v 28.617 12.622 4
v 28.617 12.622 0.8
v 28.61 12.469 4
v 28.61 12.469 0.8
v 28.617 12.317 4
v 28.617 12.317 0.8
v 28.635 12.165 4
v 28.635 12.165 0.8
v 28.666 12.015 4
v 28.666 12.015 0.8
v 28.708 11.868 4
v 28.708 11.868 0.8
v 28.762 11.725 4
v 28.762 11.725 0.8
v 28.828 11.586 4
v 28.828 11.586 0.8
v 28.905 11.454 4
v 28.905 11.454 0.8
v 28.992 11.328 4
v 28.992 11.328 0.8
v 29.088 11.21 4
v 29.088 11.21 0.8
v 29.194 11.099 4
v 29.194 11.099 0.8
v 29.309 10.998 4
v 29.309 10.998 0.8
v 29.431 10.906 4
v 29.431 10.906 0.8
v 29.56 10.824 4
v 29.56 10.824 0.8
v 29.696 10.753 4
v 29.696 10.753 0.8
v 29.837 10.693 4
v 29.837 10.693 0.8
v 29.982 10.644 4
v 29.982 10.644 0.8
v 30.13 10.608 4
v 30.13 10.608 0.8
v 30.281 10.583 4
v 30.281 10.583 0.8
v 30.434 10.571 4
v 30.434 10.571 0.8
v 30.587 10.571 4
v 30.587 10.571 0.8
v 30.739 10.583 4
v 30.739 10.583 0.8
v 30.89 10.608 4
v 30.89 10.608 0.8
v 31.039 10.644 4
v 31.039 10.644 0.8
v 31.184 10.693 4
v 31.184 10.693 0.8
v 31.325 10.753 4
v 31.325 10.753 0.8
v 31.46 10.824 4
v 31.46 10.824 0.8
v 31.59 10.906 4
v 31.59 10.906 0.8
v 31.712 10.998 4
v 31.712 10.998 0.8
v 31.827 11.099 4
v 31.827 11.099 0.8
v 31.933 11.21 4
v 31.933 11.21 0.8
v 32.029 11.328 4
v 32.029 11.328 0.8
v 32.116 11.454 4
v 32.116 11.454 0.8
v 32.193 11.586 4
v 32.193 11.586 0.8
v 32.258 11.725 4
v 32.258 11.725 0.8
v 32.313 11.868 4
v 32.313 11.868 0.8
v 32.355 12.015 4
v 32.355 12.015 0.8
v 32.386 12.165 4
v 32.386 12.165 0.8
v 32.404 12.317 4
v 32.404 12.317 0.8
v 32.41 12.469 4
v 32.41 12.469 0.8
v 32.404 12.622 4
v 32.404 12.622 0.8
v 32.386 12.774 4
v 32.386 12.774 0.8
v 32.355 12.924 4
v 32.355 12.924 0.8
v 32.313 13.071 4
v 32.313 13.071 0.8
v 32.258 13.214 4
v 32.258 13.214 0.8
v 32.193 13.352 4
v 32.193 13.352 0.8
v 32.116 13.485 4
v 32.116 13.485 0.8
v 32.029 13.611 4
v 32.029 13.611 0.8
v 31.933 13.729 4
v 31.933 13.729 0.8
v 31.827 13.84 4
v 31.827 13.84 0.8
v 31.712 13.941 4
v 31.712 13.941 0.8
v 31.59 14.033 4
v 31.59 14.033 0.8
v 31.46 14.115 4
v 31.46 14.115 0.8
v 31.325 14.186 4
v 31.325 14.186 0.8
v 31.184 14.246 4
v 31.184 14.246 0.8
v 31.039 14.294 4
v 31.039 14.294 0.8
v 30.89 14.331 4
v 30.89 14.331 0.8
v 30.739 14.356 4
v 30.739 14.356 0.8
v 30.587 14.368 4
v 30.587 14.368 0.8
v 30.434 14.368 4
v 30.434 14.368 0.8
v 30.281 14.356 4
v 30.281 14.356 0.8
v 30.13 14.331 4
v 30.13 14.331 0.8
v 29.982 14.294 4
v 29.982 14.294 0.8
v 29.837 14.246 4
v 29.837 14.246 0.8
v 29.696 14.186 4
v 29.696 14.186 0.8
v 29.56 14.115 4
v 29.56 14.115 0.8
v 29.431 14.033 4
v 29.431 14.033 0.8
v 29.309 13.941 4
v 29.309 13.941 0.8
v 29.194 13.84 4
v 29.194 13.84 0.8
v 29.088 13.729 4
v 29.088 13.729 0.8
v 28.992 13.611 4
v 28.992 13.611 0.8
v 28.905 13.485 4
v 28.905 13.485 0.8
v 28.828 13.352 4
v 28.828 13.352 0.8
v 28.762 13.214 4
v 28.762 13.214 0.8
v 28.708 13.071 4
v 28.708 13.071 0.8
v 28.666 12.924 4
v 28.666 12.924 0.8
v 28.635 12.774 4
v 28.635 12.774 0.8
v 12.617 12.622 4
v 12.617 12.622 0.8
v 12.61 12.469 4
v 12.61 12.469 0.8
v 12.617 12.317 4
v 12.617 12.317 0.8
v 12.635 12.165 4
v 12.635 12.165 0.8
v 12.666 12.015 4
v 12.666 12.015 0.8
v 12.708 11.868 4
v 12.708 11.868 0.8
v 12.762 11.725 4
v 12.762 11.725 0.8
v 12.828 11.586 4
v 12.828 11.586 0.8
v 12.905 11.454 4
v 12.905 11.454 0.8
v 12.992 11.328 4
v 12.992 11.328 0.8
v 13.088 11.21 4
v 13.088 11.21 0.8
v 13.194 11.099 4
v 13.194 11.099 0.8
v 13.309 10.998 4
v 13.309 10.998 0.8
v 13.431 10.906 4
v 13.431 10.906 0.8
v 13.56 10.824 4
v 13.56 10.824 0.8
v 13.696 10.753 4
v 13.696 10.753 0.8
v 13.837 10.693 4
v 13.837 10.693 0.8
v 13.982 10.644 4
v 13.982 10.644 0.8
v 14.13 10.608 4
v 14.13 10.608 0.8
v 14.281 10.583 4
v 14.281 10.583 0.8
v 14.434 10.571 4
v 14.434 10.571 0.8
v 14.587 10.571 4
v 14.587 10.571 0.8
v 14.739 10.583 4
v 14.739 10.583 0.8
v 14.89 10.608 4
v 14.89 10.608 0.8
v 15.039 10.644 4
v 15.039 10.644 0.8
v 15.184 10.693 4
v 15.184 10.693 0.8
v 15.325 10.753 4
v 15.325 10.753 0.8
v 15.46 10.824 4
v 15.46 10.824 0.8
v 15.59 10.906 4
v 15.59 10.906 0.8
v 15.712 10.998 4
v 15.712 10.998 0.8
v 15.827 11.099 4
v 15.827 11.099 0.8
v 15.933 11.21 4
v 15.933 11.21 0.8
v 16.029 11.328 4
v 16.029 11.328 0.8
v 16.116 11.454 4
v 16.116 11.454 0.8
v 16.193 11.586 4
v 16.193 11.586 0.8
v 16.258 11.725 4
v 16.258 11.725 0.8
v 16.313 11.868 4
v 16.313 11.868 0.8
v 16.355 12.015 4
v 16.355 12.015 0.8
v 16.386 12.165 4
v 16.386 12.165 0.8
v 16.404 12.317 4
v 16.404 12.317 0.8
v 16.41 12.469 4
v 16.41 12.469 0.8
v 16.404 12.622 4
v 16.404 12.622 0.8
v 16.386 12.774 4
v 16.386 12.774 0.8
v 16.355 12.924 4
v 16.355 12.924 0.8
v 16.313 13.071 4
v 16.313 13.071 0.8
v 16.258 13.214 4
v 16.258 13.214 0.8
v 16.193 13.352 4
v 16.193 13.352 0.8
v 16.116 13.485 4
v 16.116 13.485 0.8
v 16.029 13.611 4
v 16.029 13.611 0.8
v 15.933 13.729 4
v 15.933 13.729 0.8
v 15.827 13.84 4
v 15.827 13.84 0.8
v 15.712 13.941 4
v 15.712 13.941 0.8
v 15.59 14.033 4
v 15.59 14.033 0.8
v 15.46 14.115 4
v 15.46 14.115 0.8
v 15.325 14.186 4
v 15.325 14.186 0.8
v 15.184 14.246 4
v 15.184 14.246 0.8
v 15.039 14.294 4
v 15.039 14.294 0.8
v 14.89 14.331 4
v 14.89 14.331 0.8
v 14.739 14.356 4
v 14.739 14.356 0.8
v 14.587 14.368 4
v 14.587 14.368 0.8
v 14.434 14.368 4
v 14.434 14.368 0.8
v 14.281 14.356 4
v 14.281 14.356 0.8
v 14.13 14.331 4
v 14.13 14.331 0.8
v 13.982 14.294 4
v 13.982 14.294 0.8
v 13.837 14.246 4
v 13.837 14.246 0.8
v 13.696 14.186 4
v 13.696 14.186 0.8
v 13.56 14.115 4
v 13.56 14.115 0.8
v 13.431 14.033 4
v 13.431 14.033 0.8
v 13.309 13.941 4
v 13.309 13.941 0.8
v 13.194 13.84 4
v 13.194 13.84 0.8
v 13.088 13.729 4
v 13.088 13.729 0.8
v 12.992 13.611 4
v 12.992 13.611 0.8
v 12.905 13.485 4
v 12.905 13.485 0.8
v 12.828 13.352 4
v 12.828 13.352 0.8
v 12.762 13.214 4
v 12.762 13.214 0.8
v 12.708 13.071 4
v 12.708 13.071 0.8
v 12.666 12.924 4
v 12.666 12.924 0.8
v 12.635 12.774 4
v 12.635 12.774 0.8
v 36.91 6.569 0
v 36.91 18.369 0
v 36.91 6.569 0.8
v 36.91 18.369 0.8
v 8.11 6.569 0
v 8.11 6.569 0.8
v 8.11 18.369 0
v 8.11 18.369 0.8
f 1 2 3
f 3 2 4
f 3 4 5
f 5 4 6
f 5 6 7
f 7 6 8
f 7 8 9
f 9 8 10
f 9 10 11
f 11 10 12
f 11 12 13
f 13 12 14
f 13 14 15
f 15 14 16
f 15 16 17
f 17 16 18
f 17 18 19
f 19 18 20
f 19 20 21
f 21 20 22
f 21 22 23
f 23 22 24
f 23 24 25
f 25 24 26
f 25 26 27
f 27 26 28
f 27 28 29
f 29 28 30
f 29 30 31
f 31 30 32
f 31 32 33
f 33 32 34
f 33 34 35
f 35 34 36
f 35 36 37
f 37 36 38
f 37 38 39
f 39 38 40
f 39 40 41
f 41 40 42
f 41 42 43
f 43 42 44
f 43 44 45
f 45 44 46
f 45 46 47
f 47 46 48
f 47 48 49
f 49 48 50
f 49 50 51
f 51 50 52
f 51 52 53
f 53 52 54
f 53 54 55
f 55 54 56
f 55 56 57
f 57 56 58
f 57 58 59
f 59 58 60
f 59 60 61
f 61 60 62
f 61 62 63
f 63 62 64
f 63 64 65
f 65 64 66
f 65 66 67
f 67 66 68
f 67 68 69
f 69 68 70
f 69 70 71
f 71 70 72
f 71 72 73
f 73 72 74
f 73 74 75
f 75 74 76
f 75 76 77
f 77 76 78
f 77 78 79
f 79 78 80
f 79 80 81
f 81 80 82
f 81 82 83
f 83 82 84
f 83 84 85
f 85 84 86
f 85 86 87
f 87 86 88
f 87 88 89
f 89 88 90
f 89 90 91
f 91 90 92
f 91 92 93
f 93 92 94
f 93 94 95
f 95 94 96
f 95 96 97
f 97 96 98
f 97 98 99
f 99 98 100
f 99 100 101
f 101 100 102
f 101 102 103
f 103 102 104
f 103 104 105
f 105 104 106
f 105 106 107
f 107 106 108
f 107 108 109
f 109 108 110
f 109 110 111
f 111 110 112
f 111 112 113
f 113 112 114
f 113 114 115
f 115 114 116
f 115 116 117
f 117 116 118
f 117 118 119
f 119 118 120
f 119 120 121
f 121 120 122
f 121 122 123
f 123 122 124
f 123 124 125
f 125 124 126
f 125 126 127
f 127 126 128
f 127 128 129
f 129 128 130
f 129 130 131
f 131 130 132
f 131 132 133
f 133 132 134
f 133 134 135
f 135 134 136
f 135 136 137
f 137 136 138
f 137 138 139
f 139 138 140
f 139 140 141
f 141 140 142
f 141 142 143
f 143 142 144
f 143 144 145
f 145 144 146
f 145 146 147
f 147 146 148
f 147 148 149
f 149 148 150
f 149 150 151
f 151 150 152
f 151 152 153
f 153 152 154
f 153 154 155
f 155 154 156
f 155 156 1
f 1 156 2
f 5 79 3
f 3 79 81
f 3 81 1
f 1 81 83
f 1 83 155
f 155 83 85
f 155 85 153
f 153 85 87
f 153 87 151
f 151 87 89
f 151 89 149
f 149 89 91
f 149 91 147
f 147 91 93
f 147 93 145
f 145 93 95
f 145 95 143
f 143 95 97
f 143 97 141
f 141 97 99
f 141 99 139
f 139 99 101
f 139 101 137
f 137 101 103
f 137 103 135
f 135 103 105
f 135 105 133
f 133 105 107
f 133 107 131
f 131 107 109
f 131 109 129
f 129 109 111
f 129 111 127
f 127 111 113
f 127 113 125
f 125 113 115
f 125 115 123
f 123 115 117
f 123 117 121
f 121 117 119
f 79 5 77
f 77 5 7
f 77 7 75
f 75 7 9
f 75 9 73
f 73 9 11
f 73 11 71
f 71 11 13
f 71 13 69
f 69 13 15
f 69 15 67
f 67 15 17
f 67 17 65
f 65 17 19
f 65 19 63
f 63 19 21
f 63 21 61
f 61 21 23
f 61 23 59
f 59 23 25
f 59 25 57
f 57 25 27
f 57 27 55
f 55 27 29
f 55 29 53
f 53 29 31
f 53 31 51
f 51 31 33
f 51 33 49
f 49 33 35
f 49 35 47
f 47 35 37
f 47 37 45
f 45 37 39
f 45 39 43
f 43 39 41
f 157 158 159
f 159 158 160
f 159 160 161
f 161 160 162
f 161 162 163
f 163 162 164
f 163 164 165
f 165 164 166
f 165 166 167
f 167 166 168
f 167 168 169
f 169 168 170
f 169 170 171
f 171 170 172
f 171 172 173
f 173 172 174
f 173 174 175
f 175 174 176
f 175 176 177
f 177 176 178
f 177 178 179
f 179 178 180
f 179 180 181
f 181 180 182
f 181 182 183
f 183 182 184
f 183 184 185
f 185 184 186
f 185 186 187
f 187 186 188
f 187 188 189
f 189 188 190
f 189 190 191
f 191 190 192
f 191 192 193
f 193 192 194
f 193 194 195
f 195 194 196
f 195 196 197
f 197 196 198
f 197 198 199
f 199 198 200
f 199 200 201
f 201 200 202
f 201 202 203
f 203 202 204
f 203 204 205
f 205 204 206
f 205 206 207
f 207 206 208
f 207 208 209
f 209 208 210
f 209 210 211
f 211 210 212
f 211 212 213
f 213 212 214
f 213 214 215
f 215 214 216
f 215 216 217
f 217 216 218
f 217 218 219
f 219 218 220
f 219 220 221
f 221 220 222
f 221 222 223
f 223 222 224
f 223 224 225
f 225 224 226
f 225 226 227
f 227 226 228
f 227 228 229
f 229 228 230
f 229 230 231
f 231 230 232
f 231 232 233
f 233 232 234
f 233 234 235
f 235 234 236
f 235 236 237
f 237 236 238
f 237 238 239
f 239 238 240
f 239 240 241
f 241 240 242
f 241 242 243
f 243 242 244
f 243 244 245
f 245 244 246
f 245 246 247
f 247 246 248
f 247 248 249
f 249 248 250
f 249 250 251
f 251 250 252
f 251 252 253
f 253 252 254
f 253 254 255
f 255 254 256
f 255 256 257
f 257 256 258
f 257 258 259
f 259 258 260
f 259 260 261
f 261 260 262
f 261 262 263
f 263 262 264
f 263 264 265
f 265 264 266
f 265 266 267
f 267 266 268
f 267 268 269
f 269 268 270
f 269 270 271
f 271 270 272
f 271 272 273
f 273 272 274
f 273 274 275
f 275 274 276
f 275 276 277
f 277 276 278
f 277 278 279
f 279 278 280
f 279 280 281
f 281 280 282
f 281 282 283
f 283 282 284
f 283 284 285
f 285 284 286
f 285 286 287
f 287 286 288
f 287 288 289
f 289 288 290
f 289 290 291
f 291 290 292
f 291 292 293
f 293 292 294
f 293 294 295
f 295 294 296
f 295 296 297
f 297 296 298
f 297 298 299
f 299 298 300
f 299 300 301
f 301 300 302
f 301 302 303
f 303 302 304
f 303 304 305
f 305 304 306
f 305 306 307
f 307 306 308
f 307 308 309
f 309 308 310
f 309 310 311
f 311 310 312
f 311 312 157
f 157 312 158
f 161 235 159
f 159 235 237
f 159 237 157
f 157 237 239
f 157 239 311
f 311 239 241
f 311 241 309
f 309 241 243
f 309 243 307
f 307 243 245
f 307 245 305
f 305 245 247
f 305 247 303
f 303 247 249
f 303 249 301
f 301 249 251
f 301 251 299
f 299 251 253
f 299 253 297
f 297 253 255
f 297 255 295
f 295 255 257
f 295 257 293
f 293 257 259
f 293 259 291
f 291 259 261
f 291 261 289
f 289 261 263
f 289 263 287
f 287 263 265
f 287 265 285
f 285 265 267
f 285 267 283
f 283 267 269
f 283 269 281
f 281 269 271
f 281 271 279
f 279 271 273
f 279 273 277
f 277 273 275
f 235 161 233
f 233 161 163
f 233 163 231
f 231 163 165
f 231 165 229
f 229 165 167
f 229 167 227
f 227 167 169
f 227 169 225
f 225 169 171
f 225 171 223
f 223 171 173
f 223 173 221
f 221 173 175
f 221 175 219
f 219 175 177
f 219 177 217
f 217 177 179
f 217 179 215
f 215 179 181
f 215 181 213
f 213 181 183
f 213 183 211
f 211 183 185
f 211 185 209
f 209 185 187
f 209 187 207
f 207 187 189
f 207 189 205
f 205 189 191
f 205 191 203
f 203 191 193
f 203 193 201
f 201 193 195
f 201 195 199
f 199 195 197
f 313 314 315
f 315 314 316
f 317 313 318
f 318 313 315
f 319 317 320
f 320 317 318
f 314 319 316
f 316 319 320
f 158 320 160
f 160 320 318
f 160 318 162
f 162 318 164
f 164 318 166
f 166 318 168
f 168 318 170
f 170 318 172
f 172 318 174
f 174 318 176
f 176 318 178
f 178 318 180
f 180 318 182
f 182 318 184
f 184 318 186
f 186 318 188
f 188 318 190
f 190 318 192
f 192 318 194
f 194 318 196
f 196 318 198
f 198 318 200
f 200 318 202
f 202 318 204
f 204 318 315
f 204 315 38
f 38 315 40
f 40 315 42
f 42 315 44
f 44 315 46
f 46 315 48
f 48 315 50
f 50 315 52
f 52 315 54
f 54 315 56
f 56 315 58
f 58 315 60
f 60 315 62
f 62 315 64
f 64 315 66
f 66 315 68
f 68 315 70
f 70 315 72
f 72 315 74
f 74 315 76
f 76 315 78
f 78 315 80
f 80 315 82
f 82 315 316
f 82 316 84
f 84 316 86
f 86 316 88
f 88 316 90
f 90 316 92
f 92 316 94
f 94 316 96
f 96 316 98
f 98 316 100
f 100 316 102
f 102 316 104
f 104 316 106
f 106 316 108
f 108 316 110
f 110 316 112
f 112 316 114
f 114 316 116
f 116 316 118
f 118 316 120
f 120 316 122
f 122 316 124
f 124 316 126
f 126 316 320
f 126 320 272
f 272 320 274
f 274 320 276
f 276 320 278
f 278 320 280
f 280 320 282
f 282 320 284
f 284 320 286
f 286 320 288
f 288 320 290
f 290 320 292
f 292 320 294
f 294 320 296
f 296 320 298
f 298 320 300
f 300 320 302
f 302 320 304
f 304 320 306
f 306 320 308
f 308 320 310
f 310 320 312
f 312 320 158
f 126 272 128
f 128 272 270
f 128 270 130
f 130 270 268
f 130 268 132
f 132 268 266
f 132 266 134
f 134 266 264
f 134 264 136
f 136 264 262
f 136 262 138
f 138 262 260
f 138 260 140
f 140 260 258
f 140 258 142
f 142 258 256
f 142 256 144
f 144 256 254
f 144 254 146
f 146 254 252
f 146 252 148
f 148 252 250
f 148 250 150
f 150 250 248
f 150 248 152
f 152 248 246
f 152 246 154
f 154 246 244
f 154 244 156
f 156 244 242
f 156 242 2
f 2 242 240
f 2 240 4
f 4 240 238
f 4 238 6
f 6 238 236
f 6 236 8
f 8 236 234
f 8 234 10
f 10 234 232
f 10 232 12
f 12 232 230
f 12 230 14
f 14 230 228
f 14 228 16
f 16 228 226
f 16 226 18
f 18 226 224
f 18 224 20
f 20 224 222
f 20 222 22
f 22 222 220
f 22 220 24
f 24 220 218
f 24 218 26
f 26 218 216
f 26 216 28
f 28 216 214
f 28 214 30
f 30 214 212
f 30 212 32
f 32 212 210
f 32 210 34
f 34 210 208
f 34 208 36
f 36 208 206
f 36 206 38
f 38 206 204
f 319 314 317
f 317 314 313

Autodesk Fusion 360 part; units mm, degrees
sketch "Schizzo1" plane through (0, 0, 0) normal (0, 0, 1) x (1, 0, 0)
  line L0 (39.554, 71.8617) -> (66.804, 71.8617)
  line L1 (66.804, 71.8617) -> (66.804, 61.8617)
  line L2 (66.804, 61.8617) -> (39.554, 61.8617)
  line L3 (39.554, 61.8617) -> (39.554, 71.8617)
  line L4 (8.0104, 18.4694) -> (37.0104, 18.4694) construction
  line L5 (37.0104, 18.4694) -> (37.0104, 6.4694) construction
  line L6 (37.0104, 6.4694) -> (8.0104, 6.4694) construction
  line L7 (8.0104, 6.4694) -> (8.0104, 18.4694) construction
  line L8 (22.5104, 18.4694) -> (22.5104, 6.4694) construction
  line L9 (8.0104, 12.4694) -> (37.0104, 12.4694) construction
  circle A0 centre (14.5104, 12.4694) radius 1.9
  circle A1 centre (30.5104, 12.4694) radius 1.9
  line L10 (36.9104, 6.5694) -> (8.1104, 6.5694)
  line L11 (8.1104, 6.5694) -> (8.1104, 18.3694)
  line L12 (8.1104, 18.3694) -> (36.9104, 18.3694)
  line L13 (36.9104, 18.3694) -> (36.9104, 6.5694)
  line L14 (36.9104, 6.5694) -> (8.1104, 18.3694) construction
  line L15 (8.1104, 6.5694) -> (36.9104, 18.3694) construction
  point P0 (22.5104, 12.4694)
  dimension "d1" = 27.25
  dimension "d2" = 10
  dimension "d3" = 29
  dimension "d4" = 12
  dimension "d5" = 3.8
  dimension "d6" = 16
  dimension "d7" = 0.1
  dimension "d8" = 0.1
extrude "Estrusione1" add sketch "Schizzo1" along normal blind 0.8 contours L10 L11 L12 L13
extrude "Estrusione2" add sketch "Schizzo1" along normal blind 4 contours A0 | A1
equation "d5 = 4 mm - 0.2 mm"
